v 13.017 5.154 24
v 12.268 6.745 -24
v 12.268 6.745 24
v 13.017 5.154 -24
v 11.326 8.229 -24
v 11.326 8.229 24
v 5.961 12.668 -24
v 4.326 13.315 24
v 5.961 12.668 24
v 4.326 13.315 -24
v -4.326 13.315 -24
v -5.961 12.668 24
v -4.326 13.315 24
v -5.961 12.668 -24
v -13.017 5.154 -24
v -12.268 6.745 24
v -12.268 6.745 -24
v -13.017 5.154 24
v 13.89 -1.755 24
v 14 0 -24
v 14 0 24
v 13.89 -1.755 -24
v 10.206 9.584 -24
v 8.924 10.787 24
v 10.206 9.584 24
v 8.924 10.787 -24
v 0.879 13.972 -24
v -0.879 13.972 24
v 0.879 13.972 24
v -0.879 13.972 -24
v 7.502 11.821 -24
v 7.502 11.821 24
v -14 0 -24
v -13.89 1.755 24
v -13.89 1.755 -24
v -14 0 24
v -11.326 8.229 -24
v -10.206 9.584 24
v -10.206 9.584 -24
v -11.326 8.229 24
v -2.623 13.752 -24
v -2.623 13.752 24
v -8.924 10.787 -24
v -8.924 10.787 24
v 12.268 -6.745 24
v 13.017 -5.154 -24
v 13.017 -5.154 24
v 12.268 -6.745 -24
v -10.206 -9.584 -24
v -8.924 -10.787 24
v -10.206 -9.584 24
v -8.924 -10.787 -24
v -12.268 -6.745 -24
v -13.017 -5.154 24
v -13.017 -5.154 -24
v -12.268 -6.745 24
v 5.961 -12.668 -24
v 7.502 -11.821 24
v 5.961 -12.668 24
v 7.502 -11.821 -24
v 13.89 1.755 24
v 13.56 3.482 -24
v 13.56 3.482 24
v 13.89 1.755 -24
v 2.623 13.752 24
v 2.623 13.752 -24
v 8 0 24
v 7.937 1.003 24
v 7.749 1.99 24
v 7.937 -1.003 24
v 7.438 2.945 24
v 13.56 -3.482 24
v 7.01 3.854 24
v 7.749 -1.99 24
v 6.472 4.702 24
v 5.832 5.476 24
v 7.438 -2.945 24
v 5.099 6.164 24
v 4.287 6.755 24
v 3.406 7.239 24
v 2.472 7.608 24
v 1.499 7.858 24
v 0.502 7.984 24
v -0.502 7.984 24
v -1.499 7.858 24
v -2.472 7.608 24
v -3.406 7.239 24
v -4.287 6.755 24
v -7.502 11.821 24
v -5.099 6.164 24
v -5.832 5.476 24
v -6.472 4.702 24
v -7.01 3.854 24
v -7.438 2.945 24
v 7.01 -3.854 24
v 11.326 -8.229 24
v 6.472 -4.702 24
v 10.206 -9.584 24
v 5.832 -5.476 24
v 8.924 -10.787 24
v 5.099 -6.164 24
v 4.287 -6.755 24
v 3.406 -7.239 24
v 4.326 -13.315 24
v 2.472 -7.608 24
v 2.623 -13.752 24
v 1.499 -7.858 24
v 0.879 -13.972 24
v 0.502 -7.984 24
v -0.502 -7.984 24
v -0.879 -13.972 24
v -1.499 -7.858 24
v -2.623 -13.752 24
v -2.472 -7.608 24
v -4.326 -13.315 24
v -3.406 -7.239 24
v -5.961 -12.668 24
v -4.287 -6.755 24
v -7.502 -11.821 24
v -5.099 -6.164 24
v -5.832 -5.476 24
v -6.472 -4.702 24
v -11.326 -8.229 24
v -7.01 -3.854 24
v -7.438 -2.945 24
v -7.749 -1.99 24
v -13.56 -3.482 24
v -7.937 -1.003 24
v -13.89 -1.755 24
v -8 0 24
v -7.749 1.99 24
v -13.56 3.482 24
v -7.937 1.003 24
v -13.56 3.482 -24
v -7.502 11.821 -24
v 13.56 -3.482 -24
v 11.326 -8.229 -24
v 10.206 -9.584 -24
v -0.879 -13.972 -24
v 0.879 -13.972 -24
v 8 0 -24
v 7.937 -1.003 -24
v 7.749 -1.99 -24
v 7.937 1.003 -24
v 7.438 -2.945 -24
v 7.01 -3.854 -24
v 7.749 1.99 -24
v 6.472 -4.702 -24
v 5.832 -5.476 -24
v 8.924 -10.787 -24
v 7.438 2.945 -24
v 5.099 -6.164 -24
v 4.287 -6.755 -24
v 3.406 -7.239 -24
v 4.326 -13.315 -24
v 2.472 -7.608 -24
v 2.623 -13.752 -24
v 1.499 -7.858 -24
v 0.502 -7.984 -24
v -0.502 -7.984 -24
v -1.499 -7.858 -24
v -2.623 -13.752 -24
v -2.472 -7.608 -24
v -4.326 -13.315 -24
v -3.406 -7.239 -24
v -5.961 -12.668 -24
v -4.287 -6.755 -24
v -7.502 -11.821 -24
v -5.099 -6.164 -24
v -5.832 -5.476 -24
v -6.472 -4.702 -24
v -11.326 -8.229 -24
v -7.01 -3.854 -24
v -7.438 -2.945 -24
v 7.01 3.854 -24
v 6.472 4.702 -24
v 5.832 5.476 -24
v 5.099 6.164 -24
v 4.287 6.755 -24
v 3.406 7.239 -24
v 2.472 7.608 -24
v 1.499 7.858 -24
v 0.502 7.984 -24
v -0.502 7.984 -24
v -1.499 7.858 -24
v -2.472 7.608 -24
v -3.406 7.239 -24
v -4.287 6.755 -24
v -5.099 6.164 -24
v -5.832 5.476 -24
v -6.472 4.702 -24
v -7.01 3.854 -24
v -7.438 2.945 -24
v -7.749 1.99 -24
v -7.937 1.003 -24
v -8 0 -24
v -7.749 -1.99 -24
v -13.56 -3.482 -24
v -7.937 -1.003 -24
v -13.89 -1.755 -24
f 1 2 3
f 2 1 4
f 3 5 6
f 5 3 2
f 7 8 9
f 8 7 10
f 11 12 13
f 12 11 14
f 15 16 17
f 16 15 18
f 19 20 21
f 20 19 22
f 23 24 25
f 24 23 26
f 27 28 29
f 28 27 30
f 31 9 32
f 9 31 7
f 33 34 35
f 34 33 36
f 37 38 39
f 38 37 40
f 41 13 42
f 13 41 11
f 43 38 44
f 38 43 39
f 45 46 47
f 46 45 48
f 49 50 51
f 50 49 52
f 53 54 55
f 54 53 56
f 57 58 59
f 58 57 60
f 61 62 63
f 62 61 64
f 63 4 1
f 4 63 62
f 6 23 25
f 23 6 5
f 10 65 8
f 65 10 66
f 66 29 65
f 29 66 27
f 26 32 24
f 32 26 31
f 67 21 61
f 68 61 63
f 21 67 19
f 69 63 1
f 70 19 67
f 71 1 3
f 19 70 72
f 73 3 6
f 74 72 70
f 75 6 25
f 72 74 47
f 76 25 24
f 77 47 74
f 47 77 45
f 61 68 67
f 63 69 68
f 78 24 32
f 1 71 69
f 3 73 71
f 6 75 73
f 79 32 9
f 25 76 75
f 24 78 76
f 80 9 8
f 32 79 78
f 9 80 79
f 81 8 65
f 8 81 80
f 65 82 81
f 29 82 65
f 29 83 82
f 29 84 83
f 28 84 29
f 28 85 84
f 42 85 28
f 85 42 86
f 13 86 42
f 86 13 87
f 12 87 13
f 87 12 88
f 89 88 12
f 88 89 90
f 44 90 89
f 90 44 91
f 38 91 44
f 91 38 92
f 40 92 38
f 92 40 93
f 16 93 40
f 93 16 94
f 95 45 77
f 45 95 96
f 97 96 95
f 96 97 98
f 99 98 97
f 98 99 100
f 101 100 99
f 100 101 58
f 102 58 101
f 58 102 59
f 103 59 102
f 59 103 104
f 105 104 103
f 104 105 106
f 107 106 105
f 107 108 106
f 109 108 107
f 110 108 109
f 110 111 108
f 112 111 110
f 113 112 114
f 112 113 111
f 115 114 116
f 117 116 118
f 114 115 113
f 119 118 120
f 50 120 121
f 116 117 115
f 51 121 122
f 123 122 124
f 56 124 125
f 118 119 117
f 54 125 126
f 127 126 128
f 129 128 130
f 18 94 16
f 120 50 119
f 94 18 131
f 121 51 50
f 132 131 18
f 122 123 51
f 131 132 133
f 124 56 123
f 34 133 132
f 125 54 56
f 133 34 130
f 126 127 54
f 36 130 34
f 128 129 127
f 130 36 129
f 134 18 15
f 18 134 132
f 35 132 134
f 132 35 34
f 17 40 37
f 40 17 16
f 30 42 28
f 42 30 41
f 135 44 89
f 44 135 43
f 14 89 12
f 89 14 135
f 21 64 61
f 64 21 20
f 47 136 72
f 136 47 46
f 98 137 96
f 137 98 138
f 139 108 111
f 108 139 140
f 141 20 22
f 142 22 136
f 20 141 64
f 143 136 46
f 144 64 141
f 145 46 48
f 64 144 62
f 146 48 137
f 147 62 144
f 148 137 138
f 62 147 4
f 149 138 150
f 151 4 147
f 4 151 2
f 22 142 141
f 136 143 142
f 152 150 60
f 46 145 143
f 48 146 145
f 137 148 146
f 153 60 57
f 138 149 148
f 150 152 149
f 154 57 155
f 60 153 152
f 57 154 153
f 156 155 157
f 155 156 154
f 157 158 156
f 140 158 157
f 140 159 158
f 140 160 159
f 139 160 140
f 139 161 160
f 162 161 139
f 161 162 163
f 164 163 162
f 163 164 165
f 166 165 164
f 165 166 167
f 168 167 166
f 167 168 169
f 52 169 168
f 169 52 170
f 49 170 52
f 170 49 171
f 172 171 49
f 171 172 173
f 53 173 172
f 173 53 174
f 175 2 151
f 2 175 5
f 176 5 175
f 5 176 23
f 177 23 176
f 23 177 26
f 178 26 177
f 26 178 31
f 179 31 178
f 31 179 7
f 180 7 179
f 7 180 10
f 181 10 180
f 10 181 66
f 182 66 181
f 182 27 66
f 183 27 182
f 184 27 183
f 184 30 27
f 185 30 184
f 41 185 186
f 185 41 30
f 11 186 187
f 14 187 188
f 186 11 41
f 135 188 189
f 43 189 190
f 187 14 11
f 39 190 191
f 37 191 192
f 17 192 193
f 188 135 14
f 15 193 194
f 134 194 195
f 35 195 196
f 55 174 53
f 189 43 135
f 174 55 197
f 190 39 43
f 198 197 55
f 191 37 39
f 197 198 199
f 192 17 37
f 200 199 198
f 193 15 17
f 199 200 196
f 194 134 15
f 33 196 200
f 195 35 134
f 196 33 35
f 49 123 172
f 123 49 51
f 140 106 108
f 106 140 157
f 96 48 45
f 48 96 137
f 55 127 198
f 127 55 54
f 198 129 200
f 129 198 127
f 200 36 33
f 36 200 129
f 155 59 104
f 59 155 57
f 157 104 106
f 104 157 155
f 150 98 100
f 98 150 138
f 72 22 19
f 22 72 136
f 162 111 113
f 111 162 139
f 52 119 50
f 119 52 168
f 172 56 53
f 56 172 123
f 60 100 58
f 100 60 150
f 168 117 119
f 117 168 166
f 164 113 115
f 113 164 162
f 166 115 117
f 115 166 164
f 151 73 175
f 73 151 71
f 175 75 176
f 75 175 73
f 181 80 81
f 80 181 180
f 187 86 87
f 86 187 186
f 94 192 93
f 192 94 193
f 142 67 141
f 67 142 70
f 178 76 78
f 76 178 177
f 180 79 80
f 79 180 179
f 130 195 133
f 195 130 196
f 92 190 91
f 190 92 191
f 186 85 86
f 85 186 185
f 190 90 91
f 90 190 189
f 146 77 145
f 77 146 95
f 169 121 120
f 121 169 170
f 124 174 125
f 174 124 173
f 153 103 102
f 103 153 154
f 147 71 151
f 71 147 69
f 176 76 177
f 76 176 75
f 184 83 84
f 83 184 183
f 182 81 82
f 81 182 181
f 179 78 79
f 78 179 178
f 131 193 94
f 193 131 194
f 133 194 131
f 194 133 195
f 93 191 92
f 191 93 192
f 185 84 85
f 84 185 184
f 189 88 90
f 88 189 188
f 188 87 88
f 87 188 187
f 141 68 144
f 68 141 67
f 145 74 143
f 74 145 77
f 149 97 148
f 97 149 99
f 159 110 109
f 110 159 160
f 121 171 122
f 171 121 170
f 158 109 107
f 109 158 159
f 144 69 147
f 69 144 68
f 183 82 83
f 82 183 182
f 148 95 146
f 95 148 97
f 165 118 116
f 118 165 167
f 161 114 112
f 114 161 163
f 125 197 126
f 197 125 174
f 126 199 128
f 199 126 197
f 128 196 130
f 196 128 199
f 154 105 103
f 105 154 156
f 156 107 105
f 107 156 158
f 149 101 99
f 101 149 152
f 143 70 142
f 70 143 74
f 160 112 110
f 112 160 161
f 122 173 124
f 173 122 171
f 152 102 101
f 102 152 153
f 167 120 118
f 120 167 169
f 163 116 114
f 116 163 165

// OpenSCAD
$fn = 50;


difference() {
	union() {
		translate(v = [0, 0, -24.0000000000]) {
			cylinder(h = 48, r = 14.0000000000);
		}
	}
	union() {
		translate(v = [0, 0, -100.0000000000]) {
			cylinder(h = 200, r = 8);
		}
	}
}
